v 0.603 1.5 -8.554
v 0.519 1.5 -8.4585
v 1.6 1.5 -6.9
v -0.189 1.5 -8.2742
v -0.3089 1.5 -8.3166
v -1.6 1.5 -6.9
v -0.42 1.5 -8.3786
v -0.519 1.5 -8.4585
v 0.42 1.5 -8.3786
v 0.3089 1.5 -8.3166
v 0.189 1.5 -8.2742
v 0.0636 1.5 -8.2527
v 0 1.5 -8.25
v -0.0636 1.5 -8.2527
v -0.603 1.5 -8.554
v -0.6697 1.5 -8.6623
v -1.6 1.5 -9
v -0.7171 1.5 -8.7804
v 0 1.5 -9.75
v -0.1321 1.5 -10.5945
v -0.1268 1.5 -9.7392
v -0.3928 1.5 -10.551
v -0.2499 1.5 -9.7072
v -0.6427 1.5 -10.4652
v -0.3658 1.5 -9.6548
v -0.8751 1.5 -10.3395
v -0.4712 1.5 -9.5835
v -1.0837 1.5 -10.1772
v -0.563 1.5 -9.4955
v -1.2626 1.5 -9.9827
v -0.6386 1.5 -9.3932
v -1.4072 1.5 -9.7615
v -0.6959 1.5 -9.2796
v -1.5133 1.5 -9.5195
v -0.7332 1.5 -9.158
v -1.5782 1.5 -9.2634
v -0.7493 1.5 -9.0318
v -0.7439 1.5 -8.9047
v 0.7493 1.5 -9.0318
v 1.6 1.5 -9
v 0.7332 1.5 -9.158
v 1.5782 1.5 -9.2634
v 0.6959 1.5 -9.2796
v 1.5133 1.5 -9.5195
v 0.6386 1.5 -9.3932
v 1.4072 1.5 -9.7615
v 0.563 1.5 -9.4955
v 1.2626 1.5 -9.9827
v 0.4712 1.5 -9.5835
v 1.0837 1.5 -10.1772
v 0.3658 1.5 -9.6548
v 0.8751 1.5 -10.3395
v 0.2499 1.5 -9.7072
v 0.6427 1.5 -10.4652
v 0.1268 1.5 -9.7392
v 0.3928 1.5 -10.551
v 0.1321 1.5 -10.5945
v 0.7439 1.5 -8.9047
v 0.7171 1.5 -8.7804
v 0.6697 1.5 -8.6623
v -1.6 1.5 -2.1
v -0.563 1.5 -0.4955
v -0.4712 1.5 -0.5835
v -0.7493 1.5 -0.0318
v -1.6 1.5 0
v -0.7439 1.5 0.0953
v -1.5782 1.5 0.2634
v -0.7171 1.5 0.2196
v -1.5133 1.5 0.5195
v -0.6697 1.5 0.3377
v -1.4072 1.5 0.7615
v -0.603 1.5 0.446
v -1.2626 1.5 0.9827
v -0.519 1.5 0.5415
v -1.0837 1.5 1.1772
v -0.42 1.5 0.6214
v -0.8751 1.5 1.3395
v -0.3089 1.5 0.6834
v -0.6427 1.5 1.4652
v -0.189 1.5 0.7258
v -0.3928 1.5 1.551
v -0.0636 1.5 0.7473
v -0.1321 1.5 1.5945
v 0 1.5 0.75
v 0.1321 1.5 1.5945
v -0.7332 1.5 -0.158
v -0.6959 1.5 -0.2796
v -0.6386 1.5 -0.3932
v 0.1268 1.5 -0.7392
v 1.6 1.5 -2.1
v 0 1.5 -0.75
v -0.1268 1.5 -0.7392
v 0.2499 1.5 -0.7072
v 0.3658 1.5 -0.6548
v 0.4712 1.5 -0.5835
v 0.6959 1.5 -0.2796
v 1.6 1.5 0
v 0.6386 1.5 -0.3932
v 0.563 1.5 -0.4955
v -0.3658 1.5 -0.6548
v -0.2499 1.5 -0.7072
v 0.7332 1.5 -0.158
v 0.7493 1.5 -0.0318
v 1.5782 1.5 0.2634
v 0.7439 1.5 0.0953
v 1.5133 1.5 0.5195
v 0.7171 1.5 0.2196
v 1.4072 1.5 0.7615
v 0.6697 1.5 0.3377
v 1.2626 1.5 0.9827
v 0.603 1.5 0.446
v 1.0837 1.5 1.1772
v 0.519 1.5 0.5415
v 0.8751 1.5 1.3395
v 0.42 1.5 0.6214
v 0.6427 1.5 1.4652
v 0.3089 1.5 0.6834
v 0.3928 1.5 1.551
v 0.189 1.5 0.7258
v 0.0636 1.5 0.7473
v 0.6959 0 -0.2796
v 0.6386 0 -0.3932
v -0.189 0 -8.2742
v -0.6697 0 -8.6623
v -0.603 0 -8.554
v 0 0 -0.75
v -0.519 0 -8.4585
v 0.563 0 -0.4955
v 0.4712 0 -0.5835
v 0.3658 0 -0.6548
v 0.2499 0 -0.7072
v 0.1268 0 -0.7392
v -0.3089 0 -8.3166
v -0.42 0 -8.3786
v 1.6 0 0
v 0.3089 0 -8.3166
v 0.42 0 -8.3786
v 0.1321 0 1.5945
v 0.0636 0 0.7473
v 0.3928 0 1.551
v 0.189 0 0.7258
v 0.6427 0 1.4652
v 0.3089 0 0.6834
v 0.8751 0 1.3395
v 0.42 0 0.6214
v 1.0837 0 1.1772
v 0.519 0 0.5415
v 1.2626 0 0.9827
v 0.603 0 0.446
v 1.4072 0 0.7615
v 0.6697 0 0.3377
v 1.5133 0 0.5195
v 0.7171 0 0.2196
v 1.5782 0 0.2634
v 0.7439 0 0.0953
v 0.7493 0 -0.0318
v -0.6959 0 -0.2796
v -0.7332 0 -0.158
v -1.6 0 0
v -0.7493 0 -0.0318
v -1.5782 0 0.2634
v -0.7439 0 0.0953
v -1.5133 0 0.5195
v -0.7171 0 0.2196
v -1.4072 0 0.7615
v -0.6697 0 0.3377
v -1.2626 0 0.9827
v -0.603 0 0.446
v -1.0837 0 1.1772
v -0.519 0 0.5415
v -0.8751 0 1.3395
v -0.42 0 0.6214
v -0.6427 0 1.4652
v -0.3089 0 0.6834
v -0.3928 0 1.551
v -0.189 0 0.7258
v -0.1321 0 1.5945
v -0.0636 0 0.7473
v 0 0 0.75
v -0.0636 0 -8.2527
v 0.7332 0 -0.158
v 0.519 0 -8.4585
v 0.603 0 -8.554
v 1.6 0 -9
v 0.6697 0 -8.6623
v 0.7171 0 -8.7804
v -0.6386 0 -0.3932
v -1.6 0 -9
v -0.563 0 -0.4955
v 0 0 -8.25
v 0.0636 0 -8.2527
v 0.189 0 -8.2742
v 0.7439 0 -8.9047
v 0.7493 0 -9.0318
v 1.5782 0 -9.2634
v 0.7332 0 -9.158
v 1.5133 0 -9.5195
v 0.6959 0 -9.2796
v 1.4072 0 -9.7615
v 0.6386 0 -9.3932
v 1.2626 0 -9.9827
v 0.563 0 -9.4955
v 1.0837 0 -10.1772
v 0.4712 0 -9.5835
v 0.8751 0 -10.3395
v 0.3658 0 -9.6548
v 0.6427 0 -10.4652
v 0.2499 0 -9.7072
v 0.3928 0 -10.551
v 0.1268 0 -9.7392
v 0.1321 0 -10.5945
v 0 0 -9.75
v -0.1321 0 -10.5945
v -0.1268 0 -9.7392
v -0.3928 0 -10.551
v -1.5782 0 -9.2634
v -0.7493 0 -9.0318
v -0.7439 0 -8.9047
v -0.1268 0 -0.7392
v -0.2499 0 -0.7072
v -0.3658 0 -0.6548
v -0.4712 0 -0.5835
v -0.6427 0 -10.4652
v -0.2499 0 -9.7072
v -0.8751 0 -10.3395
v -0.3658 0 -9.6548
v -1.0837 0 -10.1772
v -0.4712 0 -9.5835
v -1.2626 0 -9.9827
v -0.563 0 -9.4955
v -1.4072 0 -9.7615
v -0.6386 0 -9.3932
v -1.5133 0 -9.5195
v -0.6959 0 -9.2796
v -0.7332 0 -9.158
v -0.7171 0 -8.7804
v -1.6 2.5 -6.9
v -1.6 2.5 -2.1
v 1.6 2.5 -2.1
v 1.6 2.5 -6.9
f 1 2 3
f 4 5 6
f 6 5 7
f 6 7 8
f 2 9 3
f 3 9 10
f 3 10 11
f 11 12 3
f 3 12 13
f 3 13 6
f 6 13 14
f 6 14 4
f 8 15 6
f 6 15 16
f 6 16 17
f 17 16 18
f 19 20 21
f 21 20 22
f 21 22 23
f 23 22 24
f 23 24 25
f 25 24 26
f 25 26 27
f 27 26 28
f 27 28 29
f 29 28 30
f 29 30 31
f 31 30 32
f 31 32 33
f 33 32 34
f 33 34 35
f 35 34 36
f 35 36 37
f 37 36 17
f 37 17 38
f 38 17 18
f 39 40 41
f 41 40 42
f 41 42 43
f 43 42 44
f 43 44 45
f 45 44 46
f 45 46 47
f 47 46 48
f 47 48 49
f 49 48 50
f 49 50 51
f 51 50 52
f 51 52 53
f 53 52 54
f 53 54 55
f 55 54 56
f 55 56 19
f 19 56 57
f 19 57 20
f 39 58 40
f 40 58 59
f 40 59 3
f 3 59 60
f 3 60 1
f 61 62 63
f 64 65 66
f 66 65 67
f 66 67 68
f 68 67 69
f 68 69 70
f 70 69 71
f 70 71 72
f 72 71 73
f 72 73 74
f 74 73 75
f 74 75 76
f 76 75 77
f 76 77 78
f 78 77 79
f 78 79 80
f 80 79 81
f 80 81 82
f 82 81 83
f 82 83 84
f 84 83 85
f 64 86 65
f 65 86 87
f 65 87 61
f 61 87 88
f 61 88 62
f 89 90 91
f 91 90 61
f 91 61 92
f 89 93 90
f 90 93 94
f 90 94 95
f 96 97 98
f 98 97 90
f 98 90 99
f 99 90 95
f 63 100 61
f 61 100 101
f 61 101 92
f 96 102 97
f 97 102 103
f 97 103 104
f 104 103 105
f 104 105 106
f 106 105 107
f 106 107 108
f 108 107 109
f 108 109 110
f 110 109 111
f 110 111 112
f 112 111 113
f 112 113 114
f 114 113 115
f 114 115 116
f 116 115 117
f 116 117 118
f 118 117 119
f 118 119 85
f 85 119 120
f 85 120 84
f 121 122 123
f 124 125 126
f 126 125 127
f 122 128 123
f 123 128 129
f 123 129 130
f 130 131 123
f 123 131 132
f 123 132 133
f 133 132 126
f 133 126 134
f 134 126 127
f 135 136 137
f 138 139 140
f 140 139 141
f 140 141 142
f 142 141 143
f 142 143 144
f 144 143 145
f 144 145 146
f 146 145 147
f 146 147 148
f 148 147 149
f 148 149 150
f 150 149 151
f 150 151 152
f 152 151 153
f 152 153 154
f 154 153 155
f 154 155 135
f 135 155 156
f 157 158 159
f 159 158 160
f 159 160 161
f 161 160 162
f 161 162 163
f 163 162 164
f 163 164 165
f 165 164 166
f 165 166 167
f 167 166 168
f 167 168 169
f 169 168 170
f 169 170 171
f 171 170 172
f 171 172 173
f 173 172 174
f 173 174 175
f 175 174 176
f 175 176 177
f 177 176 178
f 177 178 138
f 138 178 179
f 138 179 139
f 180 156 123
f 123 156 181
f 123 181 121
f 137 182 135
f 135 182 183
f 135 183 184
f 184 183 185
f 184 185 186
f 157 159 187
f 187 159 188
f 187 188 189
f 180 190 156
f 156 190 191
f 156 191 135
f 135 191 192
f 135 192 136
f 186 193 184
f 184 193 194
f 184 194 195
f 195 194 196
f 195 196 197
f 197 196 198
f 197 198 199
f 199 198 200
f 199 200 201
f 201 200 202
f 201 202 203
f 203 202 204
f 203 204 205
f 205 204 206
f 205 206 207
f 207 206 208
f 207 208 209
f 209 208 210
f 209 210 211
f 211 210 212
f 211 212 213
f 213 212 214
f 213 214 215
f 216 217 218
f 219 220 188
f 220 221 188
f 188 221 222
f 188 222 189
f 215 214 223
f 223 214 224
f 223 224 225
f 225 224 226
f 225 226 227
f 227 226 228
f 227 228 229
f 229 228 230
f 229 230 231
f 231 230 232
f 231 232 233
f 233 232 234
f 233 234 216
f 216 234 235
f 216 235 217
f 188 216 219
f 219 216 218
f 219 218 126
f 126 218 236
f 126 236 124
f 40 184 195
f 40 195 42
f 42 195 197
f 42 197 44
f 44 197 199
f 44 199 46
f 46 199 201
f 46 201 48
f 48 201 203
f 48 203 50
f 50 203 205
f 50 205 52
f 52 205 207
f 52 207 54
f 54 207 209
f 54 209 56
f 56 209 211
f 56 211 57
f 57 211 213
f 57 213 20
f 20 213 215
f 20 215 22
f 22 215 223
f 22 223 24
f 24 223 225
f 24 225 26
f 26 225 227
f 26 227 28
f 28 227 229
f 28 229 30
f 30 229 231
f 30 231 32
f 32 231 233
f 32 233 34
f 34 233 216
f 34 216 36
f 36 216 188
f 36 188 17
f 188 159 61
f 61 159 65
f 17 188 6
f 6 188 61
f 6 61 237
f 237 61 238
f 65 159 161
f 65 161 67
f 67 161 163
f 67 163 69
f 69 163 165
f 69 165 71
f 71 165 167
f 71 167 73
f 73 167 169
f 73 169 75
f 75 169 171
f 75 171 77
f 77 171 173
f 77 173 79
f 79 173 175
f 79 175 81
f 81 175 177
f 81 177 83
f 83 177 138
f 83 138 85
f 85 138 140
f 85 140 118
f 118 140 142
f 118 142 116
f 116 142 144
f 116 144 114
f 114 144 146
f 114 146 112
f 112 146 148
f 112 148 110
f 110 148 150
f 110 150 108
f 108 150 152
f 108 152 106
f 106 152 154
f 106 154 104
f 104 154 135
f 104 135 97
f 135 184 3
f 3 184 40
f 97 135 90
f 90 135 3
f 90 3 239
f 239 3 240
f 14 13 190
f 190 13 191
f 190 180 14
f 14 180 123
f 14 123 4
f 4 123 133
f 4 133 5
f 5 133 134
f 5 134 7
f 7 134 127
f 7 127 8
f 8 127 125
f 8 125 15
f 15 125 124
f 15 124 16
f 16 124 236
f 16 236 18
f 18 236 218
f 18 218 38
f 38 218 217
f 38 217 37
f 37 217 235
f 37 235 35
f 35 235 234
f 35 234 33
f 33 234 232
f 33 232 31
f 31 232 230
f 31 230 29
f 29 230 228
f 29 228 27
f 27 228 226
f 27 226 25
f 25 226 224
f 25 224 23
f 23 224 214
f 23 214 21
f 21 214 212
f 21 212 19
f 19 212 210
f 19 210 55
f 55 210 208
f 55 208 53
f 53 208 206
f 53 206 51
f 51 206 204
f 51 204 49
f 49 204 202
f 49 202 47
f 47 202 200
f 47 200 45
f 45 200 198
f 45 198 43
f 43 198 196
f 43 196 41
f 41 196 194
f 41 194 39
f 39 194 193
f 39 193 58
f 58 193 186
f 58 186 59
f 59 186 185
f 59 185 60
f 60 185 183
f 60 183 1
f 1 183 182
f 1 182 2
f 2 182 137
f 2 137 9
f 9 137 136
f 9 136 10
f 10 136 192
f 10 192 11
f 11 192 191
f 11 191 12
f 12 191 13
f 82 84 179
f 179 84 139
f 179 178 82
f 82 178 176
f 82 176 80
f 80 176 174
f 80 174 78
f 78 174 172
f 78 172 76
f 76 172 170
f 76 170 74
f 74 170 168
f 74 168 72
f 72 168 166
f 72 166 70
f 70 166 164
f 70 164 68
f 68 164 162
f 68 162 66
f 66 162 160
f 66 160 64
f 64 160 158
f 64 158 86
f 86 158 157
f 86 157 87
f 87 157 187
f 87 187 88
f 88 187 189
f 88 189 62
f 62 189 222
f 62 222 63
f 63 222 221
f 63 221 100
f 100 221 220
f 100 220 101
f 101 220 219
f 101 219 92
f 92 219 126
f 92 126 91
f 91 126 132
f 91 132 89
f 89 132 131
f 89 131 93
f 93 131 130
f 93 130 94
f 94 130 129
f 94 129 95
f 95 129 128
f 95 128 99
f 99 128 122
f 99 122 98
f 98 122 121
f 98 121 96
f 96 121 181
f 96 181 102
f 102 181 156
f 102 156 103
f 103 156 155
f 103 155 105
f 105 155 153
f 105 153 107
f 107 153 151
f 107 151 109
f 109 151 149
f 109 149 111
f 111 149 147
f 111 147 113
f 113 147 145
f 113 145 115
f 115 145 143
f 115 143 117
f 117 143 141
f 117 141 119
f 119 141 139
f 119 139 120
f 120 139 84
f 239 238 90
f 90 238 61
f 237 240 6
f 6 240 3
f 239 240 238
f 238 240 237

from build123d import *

# Parameters (mm, degrees)
SKETCH1_R           = 0.75
BOSS_EXTRUDE1_DEPTH = 1.5
SKETCH2_W           = 3.2
SKETCH2_H           = 4.8
BOSS_EXTRUDE2_DEPTH = 1


with BuildPart() as part:
    # Sketch1 → Boss-Extrude1 (new body)
    with BuildSketch(Plane(origin=(0, 0, 0), x_dir=(1, 0, 0), z_dir=(0, 1, 0))):
        with BuildLine():
            Line((-1.6, 9), (-1.6, 0))
            ThreePointArc((-1.6, 0), (0, -1.6), (1.6, 0))
            Line((1.6, 0), (1.6, 9))
            ThreePointArc((1.6, 9), (0, 10.6), (-1.6, 9))
        make_face()
        with Locations(Location((0, 9, 0), (0, 0, 270))):
            Circle(SKETCH1_R, mode=Mode.SUBTRACT)
        with Locations(Location((0, 0, 0), (0, 0, 270))):
            Circle(SKETCH1_R, mode=Mode.SUBTRACT)
    extrude(amount=BOSS_EXTRUDE1_DEPTH)

    # Sketch2 → Boss-Extrude2 (add)
    with BuildSketch(Plane(origin=(0, 1.5, 0), x_dir=(1, 0, 0), z_dir=(0, 1, 0))):
        with Locations((0, 4.5)):
            Rectangle(SKETCH2_W, SKETCH2_H)
    extrude(amount=BOSS_EXTRUDE2_DEPTH)


solid = part.part
